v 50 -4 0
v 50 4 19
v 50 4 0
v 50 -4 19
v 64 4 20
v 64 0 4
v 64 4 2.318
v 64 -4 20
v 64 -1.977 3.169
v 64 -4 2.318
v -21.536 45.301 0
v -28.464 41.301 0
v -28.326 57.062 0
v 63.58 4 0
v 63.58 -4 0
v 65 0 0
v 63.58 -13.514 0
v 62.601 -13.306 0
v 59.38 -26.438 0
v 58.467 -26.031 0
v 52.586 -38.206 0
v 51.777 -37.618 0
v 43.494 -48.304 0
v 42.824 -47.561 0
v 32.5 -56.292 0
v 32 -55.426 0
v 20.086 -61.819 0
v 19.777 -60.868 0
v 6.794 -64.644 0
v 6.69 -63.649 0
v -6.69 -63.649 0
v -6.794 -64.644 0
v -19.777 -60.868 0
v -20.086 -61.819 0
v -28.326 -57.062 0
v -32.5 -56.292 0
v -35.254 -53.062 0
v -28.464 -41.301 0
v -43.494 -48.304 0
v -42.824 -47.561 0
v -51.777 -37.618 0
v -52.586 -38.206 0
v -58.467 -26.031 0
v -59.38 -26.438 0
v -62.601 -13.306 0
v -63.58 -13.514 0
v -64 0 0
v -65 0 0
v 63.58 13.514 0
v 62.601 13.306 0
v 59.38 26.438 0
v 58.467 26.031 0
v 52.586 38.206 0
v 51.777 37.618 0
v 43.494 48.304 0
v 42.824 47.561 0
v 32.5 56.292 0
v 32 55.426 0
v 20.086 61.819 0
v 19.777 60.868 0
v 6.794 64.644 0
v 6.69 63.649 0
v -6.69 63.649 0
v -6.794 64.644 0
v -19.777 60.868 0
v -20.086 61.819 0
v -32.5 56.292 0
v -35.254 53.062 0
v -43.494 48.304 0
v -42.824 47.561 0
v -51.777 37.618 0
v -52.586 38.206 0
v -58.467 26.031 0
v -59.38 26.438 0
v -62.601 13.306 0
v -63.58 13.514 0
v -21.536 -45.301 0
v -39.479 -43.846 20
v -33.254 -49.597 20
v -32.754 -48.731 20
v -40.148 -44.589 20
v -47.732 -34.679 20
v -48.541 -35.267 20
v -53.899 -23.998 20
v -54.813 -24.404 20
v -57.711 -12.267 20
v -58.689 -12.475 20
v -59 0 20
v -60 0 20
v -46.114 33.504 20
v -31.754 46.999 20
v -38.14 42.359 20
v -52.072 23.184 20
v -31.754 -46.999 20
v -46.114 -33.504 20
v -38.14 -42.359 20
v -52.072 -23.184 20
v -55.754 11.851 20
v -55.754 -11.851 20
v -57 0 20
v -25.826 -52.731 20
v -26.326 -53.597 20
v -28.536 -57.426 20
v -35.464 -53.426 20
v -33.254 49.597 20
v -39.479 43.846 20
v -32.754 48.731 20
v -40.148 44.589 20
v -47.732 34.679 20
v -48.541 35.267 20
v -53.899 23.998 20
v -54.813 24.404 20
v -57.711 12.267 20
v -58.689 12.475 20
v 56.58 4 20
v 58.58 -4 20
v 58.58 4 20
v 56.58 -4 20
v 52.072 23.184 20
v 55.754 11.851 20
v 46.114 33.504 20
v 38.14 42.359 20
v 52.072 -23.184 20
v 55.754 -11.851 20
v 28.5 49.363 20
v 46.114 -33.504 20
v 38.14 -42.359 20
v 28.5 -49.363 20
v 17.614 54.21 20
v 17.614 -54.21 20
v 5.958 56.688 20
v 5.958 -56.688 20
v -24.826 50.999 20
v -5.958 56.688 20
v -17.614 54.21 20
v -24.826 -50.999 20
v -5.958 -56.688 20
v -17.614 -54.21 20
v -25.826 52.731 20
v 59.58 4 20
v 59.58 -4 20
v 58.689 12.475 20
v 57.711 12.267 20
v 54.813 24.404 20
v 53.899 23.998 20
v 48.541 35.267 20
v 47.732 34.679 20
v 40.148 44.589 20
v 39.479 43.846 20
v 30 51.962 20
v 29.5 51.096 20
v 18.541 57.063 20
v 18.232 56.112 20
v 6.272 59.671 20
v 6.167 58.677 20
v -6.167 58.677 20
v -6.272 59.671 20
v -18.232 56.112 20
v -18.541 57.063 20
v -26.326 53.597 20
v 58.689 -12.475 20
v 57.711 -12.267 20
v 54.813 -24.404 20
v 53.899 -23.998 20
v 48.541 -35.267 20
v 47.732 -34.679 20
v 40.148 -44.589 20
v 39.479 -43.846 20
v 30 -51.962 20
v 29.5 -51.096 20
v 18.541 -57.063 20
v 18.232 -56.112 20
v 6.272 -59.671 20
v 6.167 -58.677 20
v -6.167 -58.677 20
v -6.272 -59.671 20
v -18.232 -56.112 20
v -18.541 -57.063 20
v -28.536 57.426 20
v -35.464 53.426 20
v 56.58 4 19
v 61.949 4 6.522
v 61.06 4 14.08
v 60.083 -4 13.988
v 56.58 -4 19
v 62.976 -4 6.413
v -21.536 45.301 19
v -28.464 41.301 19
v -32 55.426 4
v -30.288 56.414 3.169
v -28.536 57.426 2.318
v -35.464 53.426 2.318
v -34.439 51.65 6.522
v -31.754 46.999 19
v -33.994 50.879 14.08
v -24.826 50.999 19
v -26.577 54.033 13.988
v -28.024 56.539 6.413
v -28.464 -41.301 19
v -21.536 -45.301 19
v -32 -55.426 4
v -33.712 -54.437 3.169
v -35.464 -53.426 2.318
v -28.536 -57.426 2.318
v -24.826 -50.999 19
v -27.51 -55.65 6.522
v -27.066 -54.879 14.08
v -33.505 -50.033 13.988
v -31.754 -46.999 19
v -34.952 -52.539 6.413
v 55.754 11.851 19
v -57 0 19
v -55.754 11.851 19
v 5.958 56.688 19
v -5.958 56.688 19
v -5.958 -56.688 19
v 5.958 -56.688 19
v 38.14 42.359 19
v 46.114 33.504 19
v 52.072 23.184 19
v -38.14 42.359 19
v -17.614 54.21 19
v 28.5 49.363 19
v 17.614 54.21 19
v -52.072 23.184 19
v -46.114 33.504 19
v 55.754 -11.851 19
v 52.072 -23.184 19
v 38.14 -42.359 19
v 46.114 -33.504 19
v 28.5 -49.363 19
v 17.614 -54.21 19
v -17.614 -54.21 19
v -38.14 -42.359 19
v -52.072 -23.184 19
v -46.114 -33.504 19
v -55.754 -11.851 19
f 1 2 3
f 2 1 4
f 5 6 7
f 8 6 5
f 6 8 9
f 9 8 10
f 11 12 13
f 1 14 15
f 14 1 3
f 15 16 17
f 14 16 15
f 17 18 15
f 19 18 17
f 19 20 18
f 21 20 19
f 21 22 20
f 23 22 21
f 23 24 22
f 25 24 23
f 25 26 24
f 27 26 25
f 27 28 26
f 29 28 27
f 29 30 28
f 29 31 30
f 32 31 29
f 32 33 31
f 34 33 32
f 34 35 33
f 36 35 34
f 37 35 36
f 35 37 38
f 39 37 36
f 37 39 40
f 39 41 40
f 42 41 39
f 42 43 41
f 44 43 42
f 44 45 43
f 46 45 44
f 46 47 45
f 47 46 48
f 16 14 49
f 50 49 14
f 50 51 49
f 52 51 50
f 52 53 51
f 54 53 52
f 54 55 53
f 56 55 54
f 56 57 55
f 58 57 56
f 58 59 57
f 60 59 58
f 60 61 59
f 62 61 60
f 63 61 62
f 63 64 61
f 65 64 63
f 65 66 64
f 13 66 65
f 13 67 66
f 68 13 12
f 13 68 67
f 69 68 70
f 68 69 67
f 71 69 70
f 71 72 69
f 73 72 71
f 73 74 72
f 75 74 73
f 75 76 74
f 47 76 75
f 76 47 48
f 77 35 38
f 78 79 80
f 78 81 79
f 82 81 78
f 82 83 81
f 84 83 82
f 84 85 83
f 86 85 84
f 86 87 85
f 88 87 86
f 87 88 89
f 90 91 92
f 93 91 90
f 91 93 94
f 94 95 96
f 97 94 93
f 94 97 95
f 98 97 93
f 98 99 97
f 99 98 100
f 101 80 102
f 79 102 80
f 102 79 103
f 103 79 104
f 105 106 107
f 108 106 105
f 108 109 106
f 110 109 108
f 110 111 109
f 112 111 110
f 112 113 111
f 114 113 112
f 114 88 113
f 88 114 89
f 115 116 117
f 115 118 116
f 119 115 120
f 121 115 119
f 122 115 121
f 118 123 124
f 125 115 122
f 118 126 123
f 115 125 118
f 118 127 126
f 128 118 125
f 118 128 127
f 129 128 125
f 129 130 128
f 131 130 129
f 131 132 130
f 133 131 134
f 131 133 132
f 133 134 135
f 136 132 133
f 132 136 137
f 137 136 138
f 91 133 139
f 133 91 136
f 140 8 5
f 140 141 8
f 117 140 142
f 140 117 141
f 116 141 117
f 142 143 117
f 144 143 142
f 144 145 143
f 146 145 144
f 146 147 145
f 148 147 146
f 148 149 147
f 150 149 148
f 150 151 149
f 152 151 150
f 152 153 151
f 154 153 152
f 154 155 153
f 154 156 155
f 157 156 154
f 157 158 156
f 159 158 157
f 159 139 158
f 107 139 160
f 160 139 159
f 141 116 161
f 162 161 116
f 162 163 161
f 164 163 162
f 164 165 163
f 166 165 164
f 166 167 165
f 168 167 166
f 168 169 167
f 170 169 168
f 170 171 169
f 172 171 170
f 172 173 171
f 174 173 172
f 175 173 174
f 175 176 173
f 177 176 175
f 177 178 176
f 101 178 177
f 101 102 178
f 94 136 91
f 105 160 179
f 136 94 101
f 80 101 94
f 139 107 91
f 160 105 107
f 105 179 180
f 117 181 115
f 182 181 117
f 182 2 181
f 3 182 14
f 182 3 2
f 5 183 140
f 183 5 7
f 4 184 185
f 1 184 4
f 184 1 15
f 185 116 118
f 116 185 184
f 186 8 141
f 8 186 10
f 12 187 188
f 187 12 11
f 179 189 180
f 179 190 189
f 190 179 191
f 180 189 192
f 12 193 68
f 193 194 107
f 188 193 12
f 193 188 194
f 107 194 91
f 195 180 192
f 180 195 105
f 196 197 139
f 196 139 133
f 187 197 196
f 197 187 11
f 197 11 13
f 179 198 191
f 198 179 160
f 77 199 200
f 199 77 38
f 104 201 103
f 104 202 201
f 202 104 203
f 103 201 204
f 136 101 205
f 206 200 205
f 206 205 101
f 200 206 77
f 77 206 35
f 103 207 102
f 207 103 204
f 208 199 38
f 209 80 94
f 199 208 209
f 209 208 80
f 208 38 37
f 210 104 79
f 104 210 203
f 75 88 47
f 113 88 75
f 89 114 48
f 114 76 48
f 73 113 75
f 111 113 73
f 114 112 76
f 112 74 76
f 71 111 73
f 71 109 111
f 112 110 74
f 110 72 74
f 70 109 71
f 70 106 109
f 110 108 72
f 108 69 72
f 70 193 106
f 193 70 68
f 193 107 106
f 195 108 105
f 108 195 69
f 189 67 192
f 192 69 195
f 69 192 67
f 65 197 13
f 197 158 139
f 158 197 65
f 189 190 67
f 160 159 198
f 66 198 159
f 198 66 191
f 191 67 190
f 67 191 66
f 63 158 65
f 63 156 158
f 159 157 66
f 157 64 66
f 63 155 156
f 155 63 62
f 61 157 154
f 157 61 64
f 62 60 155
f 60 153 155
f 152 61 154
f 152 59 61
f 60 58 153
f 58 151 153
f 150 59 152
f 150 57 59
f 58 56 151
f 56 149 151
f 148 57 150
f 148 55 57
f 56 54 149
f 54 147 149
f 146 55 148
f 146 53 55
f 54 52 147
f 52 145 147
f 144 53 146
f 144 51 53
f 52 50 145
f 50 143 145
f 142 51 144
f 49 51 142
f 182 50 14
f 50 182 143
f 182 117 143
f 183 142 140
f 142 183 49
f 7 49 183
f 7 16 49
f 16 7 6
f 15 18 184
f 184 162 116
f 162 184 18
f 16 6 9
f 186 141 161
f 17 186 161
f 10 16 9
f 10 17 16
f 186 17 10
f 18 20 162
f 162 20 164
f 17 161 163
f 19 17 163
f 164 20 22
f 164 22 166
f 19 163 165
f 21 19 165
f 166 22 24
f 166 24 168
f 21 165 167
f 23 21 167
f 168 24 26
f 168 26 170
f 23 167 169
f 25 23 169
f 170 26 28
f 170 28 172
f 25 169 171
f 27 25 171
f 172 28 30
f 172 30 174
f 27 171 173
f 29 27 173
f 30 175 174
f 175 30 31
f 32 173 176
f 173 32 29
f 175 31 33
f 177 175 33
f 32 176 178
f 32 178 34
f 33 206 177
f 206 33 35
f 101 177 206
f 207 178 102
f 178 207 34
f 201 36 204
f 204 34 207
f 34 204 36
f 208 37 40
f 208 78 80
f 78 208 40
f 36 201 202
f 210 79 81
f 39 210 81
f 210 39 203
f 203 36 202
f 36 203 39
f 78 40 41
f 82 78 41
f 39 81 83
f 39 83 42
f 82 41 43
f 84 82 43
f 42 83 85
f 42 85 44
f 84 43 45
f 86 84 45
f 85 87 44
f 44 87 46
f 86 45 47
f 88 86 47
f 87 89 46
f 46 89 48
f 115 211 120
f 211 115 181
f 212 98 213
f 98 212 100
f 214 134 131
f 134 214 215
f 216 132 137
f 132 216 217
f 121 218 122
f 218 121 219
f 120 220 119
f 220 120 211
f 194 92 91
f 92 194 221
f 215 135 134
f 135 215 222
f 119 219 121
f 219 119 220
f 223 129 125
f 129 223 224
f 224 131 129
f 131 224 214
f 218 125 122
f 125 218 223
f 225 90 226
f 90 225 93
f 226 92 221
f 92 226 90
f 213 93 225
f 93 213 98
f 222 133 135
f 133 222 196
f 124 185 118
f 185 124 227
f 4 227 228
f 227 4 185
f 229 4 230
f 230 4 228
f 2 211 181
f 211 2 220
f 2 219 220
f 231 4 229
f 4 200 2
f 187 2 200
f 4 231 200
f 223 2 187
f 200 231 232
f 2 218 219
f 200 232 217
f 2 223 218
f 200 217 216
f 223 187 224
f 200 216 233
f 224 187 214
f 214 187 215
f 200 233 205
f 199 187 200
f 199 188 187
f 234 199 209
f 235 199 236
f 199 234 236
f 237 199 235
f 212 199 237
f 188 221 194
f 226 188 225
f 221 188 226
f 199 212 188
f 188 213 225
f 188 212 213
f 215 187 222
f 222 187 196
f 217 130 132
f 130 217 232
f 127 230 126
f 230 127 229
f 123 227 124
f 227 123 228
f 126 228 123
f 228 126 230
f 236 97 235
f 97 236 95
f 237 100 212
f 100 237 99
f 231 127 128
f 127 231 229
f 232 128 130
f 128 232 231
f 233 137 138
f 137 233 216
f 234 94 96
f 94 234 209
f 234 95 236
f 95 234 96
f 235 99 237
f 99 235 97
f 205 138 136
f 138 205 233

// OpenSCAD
module radiationshield(sukima = 15){
//放射シールド
rotate_extrude()

polygon( points=[
   
//[55,20+sukima],
[60,20],
[65,0],
[64,0],
[59,20],
//[54,20+sukima],

] );
};

translate ([0,0,0])radiationshield(15);

module radiationsheild_boss() {
for ( i = [0 : 3] ){
rotate ([0,0,i*120]) 
linear_extrude(height = 20, center = false, convexity = 10, twist = 0)
 polygon( points=[
[64,4],
[64,-4],
[50,-4],
[50,4],
    ]);
}
};

radiationsheild_boss();
translate ([0,0,19])cylinder (r1 = 57, r2 = 57, h= 1);
